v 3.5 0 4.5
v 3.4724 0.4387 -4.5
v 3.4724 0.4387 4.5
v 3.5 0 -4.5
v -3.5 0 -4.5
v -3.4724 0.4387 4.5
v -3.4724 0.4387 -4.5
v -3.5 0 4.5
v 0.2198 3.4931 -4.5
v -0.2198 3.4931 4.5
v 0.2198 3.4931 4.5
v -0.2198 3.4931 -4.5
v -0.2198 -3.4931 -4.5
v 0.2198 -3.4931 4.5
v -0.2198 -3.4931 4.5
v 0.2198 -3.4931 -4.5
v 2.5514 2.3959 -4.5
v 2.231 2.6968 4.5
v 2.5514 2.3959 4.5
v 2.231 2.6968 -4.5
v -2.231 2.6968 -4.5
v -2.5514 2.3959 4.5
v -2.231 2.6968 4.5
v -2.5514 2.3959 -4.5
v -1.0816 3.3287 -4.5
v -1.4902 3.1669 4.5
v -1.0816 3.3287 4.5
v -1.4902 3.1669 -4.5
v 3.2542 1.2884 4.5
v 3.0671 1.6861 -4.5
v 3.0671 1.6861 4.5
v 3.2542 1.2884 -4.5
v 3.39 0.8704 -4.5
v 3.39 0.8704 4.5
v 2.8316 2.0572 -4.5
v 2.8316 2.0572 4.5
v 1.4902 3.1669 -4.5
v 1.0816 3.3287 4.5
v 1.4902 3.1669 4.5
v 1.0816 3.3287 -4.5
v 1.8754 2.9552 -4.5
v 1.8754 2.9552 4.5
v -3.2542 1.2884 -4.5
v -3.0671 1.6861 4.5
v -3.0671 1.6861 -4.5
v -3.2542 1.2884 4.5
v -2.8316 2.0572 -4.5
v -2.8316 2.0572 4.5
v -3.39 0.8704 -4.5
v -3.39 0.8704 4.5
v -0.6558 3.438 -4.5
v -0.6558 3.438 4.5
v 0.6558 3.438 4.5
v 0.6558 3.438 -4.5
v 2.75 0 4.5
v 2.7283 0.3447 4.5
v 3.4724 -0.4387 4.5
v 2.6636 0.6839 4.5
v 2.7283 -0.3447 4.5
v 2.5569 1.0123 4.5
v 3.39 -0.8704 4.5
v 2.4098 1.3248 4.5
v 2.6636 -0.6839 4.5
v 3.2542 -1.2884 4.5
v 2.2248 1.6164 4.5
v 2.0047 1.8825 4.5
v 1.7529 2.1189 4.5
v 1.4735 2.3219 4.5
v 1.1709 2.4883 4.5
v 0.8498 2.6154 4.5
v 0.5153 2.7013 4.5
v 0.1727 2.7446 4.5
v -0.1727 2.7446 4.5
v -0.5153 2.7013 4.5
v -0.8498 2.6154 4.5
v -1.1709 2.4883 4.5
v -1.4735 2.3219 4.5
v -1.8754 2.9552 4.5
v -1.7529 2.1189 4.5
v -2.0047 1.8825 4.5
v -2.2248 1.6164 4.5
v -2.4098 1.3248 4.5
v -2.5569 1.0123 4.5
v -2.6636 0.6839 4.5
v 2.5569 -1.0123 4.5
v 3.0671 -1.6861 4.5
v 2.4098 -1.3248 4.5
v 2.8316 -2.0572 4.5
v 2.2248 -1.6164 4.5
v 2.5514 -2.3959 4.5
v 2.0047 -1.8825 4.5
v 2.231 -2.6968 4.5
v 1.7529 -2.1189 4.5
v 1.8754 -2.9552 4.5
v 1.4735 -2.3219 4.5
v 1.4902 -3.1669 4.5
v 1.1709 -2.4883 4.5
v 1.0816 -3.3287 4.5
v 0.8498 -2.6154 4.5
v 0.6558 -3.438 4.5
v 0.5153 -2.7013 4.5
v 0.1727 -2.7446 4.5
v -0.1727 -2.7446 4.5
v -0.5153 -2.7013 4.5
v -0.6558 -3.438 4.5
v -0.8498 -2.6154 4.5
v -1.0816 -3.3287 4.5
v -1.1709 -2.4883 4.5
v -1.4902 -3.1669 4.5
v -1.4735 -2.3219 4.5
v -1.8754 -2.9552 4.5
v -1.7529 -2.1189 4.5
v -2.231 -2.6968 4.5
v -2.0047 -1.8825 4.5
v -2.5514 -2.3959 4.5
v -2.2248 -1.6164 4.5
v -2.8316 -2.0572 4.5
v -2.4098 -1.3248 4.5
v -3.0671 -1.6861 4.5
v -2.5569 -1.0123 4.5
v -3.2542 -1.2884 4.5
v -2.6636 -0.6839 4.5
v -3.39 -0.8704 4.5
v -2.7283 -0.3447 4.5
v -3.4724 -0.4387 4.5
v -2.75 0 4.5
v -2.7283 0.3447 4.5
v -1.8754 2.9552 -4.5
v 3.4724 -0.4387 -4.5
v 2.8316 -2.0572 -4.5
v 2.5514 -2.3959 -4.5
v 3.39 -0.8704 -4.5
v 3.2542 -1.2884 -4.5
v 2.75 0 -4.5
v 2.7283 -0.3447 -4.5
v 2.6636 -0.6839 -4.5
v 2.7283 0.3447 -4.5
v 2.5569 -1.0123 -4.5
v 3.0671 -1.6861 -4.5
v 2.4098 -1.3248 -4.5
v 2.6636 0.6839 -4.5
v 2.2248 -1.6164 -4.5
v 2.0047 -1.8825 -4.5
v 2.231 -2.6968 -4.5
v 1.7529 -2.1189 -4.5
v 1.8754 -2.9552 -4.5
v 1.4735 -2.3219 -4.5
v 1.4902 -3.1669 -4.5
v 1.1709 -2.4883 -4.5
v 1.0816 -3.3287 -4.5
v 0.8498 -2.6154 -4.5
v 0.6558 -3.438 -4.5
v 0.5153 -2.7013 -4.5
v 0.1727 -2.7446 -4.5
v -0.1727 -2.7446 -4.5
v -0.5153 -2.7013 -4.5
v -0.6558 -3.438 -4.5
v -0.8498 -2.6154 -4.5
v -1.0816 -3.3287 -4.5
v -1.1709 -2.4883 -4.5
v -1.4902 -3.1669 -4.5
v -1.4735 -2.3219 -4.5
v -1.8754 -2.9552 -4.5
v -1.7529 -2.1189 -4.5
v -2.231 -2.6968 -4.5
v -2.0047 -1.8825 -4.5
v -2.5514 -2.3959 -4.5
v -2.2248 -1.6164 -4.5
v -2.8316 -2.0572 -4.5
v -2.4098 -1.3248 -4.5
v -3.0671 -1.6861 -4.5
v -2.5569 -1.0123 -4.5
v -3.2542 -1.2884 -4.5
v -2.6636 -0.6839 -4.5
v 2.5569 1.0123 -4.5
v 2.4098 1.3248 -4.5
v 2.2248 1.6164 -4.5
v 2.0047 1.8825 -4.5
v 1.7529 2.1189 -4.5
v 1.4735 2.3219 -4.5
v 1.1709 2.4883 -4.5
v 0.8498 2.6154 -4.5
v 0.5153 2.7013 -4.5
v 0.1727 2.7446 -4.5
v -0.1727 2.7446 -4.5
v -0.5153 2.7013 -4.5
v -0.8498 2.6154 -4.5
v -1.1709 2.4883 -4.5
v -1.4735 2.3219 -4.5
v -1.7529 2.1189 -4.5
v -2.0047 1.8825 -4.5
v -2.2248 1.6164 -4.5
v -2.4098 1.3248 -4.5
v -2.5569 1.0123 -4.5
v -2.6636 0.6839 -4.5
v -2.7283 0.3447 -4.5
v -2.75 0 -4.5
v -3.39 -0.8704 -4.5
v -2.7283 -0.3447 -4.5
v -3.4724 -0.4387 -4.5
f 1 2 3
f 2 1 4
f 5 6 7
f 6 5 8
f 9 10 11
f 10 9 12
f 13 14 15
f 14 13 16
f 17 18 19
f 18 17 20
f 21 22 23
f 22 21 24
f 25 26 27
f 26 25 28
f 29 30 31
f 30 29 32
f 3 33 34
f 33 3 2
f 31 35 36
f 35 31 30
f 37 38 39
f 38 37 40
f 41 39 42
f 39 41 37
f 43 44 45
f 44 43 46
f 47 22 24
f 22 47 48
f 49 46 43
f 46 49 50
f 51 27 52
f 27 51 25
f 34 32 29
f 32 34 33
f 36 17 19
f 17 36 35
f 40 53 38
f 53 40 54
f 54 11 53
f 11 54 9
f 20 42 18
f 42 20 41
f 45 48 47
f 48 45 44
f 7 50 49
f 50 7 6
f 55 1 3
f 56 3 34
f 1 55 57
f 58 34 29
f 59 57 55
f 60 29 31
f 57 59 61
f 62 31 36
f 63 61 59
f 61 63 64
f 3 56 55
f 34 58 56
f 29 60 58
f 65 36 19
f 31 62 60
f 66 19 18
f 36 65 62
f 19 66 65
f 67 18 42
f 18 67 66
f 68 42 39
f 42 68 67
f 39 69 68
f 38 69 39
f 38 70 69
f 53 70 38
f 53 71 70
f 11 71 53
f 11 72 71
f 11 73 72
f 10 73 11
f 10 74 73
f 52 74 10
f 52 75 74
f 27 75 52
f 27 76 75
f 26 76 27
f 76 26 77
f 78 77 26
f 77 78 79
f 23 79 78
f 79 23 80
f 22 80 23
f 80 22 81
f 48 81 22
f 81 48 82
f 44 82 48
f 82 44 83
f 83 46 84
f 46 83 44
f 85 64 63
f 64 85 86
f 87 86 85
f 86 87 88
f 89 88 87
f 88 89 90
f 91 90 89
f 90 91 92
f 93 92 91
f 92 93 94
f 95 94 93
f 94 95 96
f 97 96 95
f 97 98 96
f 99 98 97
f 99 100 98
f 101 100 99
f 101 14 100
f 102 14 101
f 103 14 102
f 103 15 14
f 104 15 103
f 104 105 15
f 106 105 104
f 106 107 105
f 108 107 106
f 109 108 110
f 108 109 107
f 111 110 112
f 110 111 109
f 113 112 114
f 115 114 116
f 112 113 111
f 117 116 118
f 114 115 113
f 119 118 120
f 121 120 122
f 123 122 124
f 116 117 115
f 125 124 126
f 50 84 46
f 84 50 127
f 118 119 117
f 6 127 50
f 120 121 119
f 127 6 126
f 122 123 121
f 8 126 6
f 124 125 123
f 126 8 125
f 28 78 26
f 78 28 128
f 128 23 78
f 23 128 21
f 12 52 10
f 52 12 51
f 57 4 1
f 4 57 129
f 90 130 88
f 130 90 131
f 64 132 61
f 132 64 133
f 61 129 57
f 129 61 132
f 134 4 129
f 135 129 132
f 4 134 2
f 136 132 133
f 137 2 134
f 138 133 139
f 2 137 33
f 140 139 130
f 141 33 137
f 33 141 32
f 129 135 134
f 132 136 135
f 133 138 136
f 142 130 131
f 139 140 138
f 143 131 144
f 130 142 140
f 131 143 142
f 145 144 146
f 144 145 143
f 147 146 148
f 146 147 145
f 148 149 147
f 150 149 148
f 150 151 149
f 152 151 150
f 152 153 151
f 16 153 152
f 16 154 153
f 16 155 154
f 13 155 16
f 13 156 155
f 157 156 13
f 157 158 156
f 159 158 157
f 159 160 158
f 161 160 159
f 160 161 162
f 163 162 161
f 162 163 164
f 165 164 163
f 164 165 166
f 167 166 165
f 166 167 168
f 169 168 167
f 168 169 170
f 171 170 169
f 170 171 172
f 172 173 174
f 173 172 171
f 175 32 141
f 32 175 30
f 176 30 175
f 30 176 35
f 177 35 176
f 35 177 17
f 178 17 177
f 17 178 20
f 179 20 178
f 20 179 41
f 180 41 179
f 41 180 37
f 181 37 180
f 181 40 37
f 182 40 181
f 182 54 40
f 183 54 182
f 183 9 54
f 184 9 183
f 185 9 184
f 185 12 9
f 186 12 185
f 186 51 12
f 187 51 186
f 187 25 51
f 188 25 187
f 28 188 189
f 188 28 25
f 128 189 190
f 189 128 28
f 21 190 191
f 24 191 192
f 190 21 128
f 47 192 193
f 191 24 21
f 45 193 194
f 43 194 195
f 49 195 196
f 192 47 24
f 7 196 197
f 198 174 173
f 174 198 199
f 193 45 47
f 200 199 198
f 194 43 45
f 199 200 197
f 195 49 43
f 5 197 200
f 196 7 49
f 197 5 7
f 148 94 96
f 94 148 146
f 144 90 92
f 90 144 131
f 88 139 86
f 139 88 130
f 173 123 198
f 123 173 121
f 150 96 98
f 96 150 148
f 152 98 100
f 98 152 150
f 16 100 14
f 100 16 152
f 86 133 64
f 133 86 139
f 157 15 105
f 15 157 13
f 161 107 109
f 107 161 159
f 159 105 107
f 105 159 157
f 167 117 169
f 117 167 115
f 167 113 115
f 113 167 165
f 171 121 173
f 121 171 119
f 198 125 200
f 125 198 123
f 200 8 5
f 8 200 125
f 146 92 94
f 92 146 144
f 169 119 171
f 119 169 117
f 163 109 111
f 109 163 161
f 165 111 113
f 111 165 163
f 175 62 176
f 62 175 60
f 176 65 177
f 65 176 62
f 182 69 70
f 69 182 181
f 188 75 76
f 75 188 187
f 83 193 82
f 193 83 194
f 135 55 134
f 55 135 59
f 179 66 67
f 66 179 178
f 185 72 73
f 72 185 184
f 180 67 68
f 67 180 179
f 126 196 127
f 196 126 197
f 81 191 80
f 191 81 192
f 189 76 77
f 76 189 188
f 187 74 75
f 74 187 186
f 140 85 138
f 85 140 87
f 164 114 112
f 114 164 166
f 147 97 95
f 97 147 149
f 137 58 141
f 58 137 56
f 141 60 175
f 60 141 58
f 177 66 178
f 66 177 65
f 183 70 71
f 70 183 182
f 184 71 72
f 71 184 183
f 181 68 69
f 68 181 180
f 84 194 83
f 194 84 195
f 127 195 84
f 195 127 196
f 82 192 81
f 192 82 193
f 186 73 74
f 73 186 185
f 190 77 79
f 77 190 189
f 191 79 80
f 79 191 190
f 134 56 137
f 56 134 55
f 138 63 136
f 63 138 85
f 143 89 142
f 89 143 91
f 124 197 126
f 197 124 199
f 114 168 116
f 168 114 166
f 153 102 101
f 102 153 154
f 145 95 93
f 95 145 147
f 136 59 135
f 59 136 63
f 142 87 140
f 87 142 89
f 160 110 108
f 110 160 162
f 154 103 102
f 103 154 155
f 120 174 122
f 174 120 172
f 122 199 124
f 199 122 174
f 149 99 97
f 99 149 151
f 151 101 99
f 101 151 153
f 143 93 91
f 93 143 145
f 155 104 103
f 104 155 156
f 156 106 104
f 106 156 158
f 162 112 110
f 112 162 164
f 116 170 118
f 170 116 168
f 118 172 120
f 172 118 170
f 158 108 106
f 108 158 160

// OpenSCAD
$fn = 50;


difference() {
	union() {
		translate(v = [0, 0, -4.5000000000]) {
			cylinder(h = 9, r = 3.5000000000);
		}
	}
	union() {
		translate(v = [0, 0, -100.0000000000]) {
			cylinder(h = 200, r = 2.7500000000);
		}
	}
}
